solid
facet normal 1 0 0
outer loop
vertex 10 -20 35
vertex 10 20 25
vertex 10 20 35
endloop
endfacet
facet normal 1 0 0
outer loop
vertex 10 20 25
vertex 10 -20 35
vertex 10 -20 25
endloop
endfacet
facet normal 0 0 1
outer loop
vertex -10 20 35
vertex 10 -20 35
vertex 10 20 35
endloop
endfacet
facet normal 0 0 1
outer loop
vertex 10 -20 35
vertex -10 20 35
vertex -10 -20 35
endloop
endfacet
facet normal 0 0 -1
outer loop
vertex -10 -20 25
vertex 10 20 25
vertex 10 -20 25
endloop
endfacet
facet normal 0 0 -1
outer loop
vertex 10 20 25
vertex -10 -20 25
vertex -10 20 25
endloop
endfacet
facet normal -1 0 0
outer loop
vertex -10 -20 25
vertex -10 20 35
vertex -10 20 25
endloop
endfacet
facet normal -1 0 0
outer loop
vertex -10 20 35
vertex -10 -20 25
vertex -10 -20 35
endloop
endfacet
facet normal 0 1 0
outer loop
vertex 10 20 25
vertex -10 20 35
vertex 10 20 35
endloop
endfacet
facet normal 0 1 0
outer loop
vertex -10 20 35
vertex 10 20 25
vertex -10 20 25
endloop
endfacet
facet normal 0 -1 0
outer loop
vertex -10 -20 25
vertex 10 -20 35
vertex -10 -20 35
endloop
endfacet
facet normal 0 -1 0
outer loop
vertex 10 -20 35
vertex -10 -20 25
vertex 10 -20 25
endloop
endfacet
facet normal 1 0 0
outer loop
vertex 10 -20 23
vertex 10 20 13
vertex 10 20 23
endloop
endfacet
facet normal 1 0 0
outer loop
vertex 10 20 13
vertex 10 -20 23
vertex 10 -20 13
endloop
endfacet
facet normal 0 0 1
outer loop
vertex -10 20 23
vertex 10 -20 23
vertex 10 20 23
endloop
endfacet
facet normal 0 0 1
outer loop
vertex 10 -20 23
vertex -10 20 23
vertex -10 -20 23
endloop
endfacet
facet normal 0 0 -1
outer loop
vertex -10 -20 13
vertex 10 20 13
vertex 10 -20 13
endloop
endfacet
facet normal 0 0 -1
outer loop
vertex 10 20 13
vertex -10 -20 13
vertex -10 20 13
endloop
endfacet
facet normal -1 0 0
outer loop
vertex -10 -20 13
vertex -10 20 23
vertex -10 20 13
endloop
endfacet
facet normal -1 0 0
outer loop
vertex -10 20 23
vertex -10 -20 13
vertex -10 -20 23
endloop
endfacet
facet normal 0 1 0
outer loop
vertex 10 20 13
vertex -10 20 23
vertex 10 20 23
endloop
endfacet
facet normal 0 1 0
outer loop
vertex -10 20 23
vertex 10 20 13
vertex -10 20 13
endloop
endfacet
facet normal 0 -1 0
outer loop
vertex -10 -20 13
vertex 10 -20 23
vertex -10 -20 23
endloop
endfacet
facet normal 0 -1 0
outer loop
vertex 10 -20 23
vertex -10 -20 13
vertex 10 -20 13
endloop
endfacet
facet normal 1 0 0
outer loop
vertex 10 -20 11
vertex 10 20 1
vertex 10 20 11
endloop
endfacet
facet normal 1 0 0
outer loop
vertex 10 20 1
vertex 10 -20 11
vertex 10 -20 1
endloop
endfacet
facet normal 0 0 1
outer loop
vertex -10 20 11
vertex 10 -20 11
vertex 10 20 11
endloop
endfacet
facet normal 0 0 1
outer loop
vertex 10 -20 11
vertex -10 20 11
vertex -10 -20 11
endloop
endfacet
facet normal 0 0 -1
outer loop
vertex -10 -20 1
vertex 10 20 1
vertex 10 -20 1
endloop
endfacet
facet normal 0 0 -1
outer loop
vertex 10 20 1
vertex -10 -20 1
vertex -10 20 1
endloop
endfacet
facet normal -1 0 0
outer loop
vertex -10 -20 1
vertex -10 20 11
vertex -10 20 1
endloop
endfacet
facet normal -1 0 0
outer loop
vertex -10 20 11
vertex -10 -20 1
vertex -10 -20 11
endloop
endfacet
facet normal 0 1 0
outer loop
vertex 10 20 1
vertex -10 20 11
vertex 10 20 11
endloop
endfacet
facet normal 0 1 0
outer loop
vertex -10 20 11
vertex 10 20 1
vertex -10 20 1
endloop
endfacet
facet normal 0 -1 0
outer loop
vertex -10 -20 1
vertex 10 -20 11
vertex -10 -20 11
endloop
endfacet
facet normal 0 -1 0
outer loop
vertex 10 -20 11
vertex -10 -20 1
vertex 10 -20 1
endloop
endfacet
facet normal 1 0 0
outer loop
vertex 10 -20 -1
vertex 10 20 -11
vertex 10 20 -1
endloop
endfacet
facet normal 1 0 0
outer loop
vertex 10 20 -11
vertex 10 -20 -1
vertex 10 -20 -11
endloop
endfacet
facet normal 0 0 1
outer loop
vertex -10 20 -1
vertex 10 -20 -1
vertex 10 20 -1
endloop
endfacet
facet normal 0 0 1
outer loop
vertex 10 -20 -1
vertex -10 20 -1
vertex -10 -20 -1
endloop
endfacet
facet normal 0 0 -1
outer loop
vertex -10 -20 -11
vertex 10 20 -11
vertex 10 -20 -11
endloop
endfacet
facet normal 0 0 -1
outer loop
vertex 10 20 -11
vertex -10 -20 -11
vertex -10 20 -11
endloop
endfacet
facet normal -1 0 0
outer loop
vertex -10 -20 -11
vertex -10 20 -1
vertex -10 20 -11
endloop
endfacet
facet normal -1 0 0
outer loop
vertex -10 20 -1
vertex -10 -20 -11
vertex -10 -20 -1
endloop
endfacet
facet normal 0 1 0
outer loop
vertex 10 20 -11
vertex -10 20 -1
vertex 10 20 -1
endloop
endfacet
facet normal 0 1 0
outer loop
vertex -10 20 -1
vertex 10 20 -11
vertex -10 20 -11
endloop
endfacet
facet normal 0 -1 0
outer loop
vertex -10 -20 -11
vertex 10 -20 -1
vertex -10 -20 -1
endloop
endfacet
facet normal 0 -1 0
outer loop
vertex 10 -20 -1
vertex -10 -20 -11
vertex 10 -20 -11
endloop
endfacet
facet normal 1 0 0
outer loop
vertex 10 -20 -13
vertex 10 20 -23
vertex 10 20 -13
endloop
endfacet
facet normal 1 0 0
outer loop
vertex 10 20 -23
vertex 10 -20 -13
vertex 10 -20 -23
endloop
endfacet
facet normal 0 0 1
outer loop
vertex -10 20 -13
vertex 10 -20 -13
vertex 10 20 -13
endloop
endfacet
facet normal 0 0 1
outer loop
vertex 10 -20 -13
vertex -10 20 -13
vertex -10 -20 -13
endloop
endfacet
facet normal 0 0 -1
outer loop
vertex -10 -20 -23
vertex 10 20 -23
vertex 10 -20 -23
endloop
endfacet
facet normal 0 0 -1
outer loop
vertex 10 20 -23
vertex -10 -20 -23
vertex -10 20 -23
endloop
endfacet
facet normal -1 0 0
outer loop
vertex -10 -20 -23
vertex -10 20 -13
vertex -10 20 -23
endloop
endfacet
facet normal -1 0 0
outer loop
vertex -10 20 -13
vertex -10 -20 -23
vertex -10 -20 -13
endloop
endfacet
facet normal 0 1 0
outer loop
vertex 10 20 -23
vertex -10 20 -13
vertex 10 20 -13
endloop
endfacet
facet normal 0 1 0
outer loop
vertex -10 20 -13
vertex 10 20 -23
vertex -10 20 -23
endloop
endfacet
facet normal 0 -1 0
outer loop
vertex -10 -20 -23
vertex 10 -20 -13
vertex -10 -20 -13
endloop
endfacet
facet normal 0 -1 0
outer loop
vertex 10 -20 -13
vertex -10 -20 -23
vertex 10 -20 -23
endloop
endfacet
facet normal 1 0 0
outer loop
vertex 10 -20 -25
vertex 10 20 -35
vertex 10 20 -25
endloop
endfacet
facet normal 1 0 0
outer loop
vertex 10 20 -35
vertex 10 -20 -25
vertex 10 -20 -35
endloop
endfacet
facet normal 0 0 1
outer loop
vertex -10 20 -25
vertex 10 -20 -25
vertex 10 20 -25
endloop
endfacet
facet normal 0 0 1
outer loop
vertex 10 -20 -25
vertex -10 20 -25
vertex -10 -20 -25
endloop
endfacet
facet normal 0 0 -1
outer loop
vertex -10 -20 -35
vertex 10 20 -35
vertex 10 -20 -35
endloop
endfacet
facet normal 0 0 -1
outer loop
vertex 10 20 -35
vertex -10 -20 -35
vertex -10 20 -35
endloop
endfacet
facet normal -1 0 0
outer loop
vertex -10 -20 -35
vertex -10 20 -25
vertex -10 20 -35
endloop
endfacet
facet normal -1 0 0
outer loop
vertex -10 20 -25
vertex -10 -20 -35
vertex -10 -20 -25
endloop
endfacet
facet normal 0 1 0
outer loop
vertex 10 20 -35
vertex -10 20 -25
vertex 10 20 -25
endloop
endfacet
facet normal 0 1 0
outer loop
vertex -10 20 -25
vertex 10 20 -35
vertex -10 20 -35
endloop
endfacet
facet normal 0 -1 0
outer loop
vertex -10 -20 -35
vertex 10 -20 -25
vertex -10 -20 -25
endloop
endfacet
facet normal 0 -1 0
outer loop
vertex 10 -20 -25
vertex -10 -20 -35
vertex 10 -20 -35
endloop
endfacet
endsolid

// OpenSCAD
// Define dimensions for the rectangular blocks
block_width = 20;  // Width of the block
block_height = 10; // Height of the block
block_depth = 40;  // Depth of the block

// Define vertical spacing between blocks
spacing = 2; // Space between blocks

// Function to create a rectangular block
module rectangular_block() {
    cube([block_width, block_depth, block_height], center = true);
}

// Layer 1: rectangular_block_6
translate([0, 0, (block_height + spacing) * 2.5])
    rectangular_block();

// Layer 2: rectangular_block_5
translate([0, 0, (block_height + spacing) * 1.5])
    rectangular_block();

// Layer 3: rectangular_block_4
translate([0, 0, (block_height + spacing) * 0.5])
    rectangular_block();

// Layer 4: rectangular_block_3
translate([0, 0, -(block_height + spacing) * 0.5])
    rectangular_block();

// Layer 5: rectangular_block_2
translate([0, 0, -(block_height + spacing) * 1.5])
    rectangular_block();

// Layer 6: rectangular_block_1
translate([0, 0, -(block_height + spacing) * 2.5])
    rectangular_block();
